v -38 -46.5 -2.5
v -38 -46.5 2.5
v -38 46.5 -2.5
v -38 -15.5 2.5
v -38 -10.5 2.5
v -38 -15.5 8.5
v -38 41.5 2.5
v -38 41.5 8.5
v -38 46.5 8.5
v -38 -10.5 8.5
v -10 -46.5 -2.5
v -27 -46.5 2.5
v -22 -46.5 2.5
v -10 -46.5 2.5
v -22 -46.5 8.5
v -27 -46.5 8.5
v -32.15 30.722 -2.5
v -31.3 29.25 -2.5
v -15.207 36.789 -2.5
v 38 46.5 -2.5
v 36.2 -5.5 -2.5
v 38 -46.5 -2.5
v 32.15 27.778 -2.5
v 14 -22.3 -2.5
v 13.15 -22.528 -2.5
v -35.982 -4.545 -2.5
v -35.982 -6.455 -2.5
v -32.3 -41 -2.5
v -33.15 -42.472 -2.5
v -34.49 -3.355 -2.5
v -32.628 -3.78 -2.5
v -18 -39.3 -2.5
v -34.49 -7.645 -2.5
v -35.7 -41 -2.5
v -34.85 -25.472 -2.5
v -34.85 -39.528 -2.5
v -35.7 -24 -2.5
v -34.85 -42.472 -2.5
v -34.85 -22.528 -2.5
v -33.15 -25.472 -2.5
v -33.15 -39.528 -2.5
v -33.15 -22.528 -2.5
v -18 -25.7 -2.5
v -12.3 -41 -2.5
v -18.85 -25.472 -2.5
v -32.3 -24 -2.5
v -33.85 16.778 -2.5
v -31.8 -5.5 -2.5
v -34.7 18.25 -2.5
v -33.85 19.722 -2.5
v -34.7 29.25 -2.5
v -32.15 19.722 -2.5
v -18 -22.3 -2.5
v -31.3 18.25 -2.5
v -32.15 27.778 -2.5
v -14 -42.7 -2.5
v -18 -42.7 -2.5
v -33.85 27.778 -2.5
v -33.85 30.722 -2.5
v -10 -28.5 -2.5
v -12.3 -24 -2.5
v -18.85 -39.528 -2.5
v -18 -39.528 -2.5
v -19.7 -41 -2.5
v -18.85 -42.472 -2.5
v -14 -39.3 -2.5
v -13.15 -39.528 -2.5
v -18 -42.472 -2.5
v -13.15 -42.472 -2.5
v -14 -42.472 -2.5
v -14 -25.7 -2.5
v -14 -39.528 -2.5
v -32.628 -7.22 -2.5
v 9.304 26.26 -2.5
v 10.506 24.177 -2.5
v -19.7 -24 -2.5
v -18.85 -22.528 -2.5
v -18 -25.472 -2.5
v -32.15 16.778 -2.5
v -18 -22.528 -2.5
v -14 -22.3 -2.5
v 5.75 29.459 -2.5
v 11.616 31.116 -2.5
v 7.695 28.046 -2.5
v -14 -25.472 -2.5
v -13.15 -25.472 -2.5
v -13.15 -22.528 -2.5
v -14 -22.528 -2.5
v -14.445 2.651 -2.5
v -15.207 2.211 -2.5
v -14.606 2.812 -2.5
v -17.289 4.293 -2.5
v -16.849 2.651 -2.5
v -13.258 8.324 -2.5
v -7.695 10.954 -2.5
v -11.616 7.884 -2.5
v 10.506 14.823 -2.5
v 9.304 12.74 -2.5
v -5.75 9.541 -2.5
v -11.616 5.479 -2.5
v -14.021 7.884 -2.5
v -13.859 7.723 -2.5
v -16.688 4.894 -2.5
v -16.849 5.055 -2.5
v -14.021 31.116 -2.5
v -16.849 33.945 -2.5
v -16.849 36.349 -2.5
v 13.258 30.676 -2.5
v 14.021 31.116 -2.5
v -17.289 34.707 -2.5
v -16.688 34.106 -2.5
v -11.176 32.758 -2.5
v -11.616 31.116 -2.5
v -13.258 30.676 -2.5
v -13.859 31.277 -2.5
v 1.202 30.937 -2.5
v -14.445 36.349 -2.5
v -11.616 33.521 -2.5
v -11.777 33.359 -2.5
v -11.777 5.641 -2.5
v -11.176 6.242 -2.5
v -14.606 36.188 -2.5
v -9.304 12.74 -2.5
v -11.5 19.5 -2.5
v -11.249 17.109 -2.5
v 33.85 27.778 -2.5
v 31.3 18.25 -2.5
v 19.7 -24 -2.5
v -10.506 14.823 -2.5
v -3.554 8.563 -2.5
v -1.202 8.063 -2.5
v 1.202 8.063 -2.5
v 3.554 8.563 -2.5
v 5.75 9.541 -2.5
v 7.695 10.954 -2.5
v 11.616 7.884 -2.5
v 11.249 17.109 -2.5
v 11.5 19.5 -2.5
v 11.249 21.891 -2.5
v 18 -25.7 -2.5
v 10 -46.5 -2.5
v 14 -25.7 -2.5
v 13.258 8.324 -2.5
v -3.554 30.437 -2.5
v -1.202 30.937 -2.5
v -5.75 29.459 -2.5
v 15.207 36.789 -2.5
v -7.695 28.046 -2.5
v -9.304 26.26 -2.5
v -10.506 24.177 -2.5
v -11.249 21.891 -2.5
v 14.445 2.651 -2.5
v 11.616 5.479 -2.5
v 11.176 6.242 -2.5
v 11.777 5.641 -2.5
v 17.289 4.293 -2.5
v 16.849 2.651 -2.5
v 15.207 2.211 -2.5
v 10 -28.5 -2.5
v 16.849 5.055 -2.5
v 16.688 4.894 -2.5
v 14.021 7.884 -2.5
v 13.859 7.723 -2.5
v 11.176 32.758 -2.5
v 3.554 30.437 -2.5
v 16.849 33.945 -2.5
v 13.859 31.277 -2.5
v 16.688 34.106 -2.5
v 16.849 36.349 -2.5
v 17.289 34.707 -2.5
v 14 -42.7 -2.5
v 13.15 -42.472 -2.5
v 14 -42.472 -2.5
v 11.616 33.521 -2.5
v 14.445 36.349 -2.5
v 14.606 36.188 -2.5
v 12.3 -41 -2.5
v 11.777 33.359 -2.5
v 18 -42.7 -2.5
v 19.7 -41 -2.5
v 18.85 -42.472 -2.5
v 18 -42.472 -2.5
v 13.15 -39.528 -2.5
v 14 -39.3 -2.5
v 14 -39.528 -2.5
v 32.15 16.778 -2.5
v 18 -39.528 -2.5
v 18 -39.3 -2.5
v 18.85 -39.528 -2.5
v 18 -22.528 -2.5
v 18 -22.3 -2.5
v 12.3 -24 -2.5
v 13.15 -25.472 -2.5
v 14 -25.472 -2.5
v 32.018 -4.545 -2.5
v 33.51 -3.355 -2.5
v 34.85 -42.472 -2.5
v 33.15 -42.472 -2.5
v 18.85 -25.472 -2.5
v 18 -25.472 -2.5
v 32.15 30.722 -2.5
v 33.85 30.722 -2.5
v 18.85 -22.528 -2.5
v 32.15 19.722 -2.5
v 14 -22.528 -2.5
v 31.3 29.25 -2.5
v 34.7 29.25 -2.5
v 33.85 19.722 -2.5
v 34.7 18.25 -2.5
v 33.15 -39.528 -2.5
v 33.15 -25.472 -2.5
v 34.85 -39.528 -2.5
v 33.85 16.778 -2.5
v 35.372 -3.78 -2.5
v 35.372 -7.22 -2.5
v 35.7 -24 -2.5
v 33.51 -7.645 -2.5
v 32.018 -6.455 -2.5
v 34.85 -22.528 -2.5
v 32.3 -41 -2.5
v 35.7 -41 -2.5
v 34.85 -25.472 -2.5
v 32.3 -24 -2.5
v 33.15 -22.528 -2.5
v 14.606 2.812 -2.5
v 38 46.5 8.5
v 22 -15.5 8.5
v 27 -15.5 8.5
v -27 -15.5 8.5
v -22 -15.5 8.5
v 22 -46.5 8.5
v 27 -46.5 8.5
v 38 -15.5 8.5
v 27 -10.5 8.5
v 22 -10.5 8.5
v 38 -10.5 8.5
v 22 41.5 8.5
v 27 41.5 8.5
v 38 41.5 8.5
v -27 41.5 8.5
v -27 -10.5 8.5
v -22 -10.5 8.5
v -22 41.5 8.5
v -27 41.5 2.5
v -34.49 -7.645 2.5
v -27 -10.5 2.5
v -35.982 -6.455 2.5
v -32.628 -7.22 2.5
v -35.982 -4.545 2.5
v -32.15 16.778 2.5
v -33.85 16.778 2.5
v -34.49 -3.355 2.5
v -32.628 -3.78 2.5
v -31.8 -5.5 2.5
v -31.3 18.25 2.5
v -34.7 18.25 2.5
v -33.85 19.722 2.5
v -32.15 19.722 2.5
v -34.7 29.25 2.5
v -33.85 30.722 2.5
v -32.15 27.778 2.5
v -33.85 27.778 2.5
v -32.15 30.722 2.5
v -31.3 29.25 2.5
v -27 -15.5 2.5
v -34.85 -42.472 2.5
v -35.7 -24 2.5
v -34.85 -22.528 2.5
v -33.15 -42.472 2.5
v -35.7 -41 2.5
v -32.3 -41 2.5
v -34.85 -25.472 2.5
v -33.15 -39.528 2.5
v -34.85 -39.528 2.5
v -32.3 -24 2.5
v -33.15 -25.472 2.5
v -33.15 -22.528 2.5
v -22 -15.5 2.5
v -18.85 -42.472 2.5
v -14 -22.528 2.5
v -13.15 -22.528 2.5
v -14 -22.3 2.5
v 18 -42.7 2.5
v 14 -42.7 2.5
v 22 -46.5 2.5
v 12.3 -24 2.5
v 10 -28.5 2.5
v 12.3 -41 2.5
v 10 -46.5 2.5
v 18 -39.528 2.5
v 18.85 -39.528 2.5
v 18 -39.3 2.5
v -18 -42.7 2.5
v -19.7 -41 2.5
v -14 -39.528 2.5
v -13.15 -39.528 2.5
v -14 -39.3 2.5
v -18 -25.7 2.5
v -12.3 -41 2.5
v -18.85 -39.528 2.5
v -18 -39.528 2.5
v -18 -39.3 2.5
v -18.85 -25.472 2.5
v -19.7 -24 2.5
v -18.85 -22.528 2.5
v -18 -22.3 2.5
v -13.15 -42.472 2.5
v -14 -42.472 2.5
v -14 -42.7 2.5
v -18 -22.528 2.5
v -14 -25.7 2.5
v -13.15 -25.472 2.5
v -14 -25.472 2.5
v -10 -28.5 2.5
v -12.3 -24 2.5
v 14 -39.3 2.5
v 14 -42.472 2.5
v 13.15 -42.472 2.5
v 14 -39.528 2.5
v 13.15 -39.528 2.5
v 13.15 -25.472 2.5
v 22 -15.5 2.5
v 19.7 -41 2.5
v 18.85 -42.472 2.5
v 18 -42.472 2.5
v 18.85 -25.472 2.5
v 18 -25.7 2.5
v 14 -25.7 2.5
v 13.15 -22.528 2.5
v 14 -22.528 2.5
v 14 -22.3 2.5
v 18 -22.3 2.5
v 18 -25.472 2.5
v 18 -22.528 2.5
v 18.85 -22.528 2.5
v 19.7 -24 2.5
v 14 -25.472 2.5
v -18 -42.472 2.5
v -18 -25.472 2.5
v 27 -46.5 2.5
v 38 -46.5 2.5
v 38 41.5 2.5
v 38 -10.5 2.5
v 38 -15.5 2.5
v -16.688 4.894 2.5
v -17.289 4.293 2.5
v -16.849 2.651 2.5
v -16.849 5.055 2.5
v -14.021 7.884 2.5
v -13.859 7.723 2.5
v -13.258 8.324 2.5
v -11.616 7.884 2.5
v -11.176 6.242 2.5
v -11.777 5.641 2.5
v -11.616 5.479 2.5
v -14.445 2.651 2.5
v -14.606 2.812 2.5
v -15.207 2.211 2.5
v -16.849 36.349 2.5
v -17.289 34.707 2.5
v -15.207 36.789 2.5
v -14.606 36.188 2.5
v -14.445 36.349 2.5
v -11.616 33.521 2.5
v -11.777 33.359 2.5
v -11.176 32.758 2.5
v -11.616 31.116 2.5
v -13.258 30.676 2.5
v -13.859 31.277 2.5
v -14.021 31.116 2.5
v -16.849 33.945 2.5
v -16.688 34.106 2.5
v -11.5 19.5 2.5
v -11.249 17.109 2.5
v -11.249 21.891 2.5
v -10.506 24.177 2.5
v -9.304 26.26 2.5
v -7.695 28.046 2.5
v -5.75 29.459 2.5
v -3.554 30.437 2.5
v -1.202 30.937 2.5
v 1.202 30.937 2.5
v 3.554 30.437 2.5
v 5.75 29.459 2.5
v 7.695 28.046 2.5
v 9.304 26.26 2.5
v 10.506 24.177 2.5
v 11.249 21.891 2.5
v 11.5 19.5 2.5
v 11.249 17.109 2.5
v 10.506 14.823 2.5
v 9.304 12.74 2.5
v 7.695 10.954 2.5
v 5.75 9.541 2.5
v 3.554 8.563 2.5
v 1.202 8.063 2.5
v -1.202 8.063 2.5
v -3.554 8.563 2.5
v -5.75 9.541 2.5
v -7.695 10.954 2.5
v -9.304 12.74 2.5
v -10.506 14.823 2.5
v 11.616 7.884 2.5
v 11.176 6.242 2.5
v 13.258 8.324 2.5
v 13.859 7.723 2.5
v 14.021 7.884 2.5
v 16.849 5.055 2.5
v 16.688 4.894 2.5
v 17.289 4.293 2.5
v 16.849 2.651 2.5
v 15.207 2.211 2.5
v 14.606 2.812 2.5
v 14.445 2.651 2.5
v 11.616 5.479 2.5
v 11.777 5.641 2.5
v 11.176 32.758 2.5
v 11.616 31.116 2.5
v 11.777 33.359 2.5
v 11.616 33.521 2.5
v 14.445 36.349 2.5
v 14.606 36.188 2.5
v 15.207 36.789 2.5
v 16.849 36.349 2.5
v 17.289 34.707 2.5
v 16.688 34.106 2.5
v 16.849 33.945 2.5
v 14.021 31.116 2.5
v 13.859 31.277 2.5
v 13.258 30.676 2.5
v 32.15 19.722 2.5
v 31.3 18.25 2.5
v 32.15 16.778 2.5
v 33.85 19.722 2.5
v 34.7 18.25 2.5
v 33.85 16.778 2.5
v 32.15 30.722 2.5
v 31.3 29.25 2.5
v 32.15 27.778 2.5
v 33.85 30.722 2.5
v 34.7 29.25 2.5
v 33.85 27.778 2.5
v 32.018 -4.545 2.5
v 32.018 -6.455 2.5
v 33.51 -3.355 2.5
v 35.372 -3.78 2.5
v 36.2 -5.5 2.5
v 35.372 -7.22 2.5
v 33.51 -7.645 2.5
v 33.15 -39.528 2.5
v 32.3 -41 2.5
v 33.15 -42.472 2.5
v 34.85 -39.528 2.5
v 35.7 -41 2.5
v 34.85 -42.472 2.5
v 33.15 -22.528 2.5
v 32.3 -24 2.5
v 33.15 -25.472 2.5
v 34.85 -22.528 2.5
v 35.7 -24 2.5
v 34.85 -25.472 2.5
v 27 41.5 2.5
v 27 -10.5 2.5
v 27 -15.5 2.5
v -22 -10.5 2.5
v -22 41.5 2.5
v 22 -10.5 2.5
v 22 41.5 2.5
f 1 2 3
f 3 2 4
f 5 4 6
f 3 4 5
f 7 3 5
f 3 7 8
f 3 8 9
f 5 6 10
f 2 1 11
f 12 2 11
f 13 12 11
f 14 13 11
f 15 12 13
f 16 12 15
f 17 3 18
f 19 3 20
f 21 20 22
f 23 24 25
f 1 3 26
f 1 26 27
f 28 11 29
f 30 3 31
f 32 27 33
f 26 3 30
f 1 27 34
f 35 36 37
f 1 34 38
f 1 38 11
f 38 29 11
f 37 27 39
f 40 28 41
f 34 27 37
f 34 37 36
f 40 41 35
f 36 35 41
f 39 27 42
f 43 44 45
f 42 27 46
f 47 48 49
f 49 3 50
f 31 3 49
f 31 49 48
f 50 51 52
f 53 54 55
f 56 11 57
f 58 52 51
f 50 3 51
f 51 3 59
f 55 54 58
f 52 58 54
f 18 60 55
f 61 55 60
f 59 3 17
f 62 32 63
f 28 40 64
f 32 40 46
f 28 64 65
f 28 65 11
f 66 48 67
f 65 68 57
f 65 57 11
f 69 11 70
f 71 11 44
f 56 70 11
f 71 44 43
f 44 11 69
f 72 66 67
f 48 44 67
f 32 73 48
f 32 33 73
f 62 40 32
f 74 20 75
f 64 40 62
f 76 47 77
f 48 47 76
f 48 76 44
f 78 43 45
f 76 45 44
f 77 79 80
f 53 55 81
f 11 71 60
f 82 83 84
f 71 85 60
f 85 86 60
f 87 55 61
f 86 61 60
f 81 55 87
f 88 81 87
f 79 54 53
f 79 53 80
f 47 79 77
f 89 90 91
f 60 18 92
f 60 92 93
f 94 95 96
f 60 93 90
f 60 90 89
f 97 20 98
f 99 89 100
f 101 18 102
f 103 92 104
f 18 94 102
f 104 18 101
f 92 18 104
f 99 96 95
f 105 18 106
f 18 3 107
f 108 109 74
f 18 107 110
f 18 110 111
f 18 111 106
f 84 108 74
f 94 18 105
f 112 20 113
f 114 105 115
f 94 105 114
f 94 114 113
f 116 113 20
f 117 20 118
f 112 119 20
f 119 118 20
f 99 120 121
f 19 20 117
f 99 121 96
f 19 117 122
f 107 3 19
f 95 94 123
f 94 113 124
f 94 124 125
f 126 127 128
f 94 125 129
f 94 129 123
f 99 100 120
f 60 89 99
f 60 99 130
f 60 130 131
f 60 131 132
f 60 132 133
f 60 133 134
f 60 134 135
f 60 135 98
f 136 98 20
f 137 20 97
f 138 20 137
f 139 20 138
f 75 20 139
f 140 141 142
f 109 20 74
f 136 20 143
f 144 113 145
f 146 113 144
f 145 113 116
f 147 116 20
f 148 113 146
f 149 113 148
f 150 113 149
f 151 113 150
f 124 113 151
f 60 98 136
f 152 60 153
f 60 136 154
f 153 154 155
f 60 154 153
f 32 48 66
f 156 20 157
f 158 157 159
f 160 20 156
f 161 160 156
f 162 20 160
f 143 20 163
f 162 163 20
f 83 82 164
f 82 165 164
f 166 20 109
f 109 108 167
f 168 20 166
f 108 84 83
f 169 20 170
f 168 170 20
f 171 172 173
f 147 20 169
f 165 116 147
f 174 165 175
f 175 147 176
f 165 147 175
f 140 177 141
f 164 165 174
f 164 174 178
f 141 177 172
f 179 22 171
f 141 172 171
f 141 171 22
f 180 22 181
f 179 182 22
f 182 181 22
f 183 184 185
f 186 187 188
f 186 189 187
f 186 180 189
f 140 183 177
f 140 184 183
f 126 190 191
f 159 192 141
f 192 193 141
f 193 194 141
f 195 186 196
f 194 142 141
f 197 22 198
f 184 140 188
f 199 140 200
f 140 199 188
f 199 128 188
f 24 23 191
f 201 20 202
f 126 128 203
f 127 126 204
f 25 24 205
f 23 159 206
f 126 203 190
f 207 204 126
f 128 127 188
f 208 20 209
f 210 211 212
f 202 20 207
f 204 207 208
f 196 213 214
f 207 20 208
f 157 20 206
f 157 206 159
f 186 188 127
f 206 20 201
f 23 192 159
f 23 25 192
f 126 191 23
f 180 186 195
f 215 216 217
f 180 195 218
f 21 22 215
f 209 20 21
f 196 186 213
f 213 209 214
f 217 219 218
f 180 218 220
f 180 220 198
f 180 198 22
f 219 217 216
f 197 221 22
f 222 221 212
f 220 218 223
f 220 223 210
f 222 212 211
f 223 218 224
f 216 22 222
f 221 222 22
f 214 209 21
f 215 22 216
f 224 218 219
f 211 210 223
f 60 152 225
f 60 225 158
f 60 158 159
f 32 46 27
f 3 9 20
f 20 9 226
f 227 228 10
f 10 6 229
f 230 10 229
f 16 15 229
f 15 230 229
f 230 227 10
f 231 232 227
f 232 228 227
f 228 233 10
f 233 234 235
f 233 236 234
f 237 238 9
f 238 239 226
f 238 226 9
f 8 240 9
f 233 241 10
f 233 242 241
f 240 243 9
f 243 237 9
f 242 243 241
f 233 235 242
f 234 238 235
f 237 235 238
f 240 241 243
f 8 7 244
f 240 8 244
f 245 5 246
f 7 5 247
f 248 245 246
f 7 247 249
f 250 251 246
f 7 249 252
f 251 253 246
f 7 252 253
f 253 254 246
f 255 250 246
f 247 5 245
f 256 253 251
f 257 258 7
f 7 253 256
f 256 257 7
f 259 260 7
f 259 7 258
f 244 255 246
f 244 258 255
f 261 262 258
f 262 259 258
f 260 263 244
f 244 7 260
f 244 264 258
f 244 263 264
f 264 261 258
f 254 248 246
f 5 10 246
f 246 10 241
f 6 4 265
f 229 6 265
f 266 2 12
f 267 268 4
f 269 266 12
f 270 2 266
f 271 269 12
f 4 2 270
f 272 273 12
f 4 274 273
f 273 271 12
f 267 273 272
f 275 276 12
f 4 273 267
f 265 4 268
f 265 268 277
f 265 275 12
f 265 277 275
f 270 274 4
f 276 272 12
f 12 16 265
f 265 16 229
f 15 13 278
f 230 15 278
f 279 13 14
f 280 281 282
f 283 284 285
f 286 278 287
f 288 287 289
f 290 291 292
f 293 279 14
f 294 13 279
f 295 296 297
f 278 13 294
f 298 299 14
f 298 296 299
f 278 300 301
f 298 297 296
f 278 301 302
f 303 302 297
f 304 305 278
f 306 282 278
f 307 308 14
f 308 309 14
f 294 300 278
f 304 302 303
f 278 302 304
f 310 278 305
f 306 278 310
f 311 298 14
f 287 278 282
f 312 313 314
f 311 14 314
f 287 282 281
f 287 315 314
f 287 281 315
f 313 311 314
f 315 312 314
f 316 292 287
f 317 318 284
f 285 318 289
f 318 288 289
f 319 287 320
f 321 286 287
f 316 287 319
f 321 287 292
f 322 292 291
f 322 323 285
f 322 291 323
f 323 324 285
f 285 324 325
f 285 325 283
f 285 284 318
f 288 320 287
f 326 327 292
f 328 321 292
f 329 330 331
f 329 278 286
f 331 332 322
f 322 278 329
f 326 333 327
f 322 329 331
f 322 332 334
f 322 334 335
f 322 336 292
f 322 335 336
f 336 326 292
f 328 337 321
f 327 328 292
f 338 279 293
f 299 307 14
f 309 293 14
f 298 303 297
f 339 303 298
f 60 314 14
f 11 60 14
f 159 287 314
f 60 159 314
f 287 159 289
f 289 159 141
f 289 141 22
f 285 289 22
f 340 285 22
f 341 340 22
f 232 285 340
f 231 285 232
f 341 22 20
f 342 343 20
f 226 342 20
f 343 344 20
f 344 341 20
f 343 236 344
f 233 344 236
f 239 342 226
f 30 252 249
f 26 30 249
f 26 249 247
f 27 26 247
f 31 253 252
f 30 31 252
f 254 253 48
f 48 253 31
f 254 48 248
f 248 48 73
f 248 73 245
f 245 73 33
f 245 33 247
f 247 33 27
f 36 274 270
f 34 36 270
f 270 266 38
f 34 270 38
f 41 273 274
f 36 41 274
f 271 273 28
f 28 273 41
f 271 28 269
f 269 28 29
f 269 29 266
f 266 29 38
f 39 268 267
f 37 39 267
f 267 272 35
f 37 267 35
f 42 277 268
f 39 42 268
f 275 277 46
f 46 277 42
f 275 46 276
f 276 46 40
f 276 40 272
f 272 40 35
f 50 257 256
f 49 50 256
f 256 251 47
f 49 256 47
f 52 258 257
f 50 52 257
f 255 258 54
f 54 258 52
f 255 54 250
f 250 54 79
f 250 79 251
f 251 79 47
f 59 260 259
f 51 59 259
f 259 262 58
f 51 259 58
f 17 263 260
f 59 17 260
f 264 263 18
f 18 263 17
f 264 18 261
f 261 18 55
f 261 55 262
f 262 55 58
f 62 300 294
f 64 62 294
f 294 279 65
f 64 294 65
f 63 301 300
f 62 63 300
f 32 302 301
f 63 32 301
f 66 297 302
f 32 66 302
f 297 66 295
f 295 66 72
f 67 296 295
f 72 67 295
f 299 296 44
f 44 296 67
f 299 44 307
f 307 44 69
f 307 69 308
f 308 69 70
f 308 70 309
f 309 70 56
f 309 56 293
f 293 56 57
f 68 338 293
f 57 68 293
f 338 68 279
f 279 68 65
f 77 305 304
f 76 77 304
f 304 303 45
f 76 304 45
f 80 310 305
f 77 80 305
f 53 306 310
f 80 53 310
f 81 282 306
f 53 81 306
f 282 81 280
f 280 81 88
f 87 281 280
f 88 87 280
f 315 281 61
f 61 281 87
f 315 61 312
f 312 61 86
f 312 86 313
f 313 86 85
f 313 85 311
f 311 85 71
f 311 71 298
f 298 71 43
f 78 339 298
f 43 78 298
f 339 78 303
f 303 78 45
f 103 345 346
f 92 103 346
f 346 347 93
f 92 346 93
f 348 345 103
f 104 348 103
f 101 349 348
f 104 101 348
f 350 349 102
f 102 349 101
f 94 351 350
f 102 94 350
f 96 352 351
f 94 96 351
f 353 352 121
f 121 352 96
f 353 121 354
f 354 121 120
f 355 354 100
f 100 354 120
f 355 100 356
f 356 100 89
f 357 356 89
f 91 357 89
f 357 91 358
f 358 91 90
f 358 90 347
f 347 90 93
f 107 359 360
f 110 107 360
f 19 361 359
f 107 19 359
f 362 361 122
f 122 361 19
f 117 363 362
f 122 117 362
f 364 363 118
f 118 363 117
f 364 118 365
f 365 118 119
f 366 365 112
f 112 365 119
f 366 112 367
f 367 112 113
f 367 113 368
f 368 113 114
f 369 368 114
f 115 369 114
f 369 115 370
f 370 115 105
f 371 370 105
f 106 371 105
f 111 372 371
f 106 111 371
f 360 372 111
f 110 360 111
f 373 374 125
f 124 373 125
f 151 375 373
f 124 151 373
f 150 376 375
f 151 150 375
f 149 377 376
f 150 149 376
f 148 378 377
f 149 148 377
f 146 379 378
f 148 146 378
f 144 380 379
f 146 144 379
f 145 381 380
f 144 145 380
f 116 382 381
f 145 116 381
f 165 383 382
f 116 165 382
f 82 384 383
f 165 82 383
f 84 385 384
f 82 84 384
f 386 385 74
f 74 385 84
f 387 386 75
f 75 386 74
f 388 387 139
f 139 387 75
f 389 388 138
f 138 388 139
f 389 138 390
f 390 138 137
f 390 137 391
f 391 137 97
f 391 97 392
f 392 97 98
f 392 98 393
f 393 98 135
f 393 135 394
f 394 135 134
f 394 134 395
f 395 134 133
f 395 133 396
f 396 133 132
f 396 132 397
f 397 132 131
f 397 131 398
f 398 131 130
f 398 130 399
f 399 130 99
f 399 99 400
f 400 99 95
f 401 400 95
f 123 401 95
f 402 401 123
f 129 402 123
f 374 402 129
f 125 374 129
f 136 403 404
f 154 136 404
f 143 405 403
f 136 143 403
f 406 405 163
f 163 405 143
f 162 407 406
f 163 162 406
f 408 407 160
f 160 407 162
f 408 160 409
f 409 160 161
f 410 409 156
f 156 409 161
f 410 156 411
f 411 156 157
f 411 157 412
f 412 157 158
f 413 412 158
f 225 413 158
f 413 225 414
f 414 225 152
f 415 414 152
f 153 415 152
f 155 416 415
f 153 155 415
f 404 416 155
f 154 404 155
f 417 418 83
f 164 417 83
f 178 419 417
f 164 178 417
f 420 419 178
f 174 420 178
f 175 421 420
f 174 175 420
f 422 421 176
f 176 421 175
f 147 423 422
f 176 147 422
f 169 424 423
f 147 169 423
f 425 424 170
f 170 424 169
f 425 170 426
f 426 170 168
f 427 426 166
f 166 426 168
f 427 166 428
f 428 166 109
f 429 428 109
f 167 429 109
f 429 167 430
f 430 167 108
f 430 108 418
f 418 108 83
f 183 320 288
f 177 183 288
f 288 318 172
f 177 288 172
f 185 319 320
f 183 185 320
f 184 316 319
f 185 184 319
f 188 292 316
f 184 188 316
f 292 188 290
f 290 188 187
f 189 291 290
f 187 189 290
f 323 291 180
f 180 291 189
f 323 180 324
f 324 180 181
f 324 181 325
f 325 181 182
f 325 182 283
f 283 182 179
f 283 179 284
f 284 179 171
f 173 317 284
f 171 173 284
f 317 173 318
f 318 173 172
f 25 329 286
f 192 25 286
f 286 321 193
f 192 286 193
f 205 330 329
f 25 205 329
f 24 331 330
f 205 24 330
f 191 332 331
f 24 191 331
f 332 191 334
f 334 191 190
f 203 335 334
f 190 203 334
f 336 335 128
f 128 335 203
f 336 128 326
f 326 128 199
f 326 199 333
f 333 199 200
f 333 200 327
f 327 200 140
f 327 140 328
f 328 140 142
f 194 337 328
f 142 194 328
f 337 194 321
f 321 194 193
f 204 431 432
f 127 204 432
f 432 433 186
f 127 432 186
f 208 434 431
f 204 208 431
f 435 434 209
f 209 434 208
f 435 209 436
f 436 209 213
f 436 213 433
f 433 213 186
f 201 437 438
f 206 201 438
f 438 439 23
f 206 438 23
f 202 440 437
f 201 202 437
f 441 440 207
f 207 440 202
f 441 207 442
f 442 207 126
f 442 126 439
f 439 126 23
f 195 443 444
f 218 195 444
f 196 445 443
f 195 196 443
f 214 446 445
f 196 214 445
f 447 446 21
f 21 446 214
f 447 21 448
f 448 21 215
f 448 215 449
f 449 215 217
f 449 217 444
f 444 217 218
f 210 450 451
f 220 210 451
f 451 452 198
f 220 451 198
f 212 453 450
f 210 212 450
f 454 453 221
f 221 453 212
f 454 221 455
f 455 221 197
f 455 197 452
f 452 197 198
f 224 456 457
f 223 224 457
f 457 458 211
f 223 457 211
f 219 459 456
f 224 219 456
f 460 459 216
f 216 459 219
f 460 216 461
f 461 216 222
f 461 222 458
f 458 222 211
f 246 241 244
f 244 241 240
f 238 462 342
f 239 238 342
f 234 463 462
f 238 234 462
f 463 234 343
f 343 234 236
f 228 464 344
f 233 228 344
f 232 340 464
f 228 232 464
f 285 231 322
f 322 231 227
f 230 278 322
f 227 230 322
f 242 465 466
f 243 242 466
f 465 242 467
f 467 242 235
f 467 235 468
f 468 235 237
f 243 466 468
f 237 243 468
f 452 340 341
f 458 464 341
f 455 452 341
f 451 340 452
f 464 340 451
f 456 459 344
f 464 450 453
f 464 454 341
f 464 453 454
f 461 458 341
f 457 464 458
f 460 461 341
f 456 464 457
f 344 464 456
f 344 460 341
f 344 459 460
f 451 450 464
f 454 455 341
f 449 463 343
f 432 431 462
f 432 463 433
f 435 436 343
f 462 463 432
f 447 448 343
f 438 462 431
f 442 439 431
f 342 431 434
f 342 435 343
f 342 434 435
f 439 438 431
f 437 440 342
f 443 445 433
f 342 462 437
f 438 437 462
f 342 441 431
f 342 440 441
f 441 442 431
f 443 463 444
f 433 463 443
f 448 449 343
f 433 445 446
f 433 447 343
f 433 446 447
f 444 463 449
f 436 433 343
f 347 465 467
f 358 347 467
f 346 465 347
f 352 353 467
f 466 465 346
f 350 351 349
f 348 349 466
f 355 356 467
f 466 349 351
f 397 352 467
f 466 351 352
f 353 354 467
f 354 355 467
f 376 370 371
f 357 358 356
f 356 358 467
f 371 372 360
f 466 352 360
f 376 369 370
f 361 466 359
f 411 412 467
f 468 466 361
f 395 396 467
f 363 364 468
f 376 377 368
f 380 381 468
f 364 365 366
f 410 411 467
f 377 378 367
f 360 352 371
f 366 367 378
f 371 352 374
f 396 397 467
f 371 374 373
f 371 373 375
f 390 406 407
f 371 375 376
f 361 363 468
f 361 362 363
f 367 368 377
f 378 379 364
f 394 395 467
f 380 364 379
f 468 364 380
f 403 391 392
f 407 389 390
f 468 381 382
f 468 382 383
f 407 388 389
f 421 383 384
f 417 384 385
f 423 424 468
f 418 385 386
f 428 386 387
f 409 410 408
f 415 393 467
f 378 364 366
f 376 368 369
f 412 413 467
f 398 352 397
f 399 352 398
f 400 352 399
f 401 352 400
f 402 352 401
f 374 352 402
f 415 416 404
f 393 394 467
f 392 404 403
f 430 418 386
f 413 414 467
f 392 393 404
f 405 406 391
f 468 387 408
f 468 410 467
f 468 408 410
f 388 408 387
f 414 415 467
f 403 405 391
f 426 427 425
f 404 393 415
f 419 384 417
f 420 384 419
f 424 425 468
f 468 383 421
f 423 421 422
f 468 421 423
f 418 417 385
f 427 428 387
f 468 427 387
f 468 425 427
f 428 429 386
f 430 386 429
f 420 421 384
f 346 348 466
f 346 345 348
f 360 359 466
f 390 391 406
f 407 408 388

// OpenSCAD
w = 76;
l = 93;
base_t = 5;
rib_t = 7;
rib_w = 5;
motor_d = 23;
clamp_d = 3.4;
roller_d = 4.4;
slot_l = 4;

module slot(d,l){
	union(){
		cube([l,d,base_t+2], center=true);
		translate([l/2,0,0])cylinder(r=d/2, h=base_t+2, center=true);
		translate([-l/2,0,0])cylinder(r=d/2, h=base_t+2, center=true);
	}
} //slot

//Main
difference(){
	union(){
		//Base plate
		cube([w,l,base_t], center=true);

		//Ribs
		translate([0,(l-rib_w)/2,base_t])cube([w,rib_w,rib_t], center=true);
		translate([0,-13,base_t])cube([w,rib_w,rib_t], center=true);
		translate([24.5,0,base_t])cube([rib_w,l,rib_t], center=true);
		translate([-24.5,0,base_t])cube([rib_w,l,rib_t], center=true);
	} //union

	//Frame cutout
		translate([0,-(l-16)/2,0])cube([20,18+2,base_t+2], center=true);

	//Motor holes
	translate([0,19.5,0])cylinder(r=motor_d/2, h=base_t+2, center=true);
	translate([0,19.5,0]){
		for (i=[1:4]){
			rotate([0,0,45+90*i])translate([20.128,0,0])slot(clamp_d,slot_l);
		}
	}
	
	//Mounting holes
	translate([0,-32.5,0]){
		for (i=[-1,1]){
			for (j=[-1,1]){
				translate([16*i,17/2*j,0])slot(clamp_d,slot_l);
			}
		}
	}
	translate([0,-32.5,0]){
		for (i=[-1,1]){
			for (j=[-1,1]){
				translate([34*i,17/2*j,0])cylinder(r=clamp_d/2, h=base_t+2, center=true);
			}
		}
	}

	//Roller holes
	for (i=[-1,1]){
		translate([34*i,-5.5,0])cylinder(r=roller_d/2, h=base_t+2, center=true);
	}

	//Little holes
	translate([0,23.75,0]){
		for (i=[-1,1]){
			for (j=[-1,1]){
				translate([33*i,11/2*j,0])cylinder(r=clamp_d/2, h=base_t+2, center=true);
			}
		}
	}

} // difference
